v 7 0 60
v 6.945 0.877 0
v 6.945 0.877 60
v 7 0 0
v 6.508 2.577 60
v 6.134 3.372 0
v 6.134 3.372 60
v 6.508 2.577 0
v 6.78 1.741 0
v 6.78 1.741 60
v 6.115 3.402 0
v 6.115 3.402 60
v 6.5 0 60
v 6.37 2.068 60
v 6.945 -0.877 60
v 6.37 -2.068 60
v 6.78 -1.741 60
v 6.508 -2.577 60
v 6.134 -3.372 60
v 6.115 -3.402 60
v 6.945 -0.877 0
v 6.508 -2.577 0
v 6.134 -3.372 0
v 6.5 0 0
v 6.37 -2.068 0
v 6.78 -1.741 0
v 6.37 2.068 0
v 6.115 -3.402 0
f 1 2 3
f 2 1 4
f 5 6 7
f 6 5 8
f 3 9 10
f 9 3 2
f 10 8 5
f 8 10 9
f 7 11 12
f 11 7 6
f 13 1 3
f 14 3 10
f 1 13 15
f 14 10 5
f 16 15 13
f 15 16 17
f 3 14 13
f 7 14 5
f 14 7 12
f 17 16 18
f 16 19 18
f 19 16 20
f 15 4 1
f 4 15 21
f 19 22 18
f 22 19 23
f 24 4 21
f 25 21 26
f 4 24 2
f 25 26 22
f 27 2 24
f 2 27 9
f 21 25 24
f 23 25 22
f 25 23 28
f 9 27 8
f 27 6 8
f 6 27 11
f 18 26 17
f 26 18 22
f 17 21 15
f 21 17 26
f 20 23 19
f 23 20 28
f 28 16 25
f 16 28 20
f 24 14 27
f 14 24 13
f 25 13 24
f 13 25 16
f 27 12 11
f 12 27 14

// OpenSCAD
$fn = 50;


difference() {
	union() {
		cylinder(h = 60, r = 7.0000000000);
		translate(v = [-13.0000000000, 0, 0]) {
			cylinder(h = 60, r = 7.0000000000);
		}
	}
	union() {
		cylinder(h = 60, r = 3.2500000000);
		cylinder(h = 60, r = 1.8000000000);
		cylinder(h = 60, r = 1.8000000000);
		cylinder(h = 60, r = 1.8000000000);
		translate(v = [-17.5000000000, 0, 0]) {
			hull() {
				translate(v = [-3.7500000000, 0.0000000000, 0]) {
					cylinder(h = 60, r = 10.5000000000);
				}
				translate(v = [3.7500000000, 0.0000000000, 0]) {
					cylinder(h = 60, r = 10.5000000000);
				}
				translate(v = [-3.7500000000, -0.0000000000, 0]) {
					cylinder(h = 60, r = 10.5000000000);
				}
				translate(v = [3.7500000000, -0.0000000000, 0]) {
					cylinder(h = 60, r = 10.5000000000);
				}
			}
		}
		translate(v = [-10.0000000000, 0, 0.0000000000]) {
			cylinder(h = 60, r = 16.5000000000);
		}
	}
}
